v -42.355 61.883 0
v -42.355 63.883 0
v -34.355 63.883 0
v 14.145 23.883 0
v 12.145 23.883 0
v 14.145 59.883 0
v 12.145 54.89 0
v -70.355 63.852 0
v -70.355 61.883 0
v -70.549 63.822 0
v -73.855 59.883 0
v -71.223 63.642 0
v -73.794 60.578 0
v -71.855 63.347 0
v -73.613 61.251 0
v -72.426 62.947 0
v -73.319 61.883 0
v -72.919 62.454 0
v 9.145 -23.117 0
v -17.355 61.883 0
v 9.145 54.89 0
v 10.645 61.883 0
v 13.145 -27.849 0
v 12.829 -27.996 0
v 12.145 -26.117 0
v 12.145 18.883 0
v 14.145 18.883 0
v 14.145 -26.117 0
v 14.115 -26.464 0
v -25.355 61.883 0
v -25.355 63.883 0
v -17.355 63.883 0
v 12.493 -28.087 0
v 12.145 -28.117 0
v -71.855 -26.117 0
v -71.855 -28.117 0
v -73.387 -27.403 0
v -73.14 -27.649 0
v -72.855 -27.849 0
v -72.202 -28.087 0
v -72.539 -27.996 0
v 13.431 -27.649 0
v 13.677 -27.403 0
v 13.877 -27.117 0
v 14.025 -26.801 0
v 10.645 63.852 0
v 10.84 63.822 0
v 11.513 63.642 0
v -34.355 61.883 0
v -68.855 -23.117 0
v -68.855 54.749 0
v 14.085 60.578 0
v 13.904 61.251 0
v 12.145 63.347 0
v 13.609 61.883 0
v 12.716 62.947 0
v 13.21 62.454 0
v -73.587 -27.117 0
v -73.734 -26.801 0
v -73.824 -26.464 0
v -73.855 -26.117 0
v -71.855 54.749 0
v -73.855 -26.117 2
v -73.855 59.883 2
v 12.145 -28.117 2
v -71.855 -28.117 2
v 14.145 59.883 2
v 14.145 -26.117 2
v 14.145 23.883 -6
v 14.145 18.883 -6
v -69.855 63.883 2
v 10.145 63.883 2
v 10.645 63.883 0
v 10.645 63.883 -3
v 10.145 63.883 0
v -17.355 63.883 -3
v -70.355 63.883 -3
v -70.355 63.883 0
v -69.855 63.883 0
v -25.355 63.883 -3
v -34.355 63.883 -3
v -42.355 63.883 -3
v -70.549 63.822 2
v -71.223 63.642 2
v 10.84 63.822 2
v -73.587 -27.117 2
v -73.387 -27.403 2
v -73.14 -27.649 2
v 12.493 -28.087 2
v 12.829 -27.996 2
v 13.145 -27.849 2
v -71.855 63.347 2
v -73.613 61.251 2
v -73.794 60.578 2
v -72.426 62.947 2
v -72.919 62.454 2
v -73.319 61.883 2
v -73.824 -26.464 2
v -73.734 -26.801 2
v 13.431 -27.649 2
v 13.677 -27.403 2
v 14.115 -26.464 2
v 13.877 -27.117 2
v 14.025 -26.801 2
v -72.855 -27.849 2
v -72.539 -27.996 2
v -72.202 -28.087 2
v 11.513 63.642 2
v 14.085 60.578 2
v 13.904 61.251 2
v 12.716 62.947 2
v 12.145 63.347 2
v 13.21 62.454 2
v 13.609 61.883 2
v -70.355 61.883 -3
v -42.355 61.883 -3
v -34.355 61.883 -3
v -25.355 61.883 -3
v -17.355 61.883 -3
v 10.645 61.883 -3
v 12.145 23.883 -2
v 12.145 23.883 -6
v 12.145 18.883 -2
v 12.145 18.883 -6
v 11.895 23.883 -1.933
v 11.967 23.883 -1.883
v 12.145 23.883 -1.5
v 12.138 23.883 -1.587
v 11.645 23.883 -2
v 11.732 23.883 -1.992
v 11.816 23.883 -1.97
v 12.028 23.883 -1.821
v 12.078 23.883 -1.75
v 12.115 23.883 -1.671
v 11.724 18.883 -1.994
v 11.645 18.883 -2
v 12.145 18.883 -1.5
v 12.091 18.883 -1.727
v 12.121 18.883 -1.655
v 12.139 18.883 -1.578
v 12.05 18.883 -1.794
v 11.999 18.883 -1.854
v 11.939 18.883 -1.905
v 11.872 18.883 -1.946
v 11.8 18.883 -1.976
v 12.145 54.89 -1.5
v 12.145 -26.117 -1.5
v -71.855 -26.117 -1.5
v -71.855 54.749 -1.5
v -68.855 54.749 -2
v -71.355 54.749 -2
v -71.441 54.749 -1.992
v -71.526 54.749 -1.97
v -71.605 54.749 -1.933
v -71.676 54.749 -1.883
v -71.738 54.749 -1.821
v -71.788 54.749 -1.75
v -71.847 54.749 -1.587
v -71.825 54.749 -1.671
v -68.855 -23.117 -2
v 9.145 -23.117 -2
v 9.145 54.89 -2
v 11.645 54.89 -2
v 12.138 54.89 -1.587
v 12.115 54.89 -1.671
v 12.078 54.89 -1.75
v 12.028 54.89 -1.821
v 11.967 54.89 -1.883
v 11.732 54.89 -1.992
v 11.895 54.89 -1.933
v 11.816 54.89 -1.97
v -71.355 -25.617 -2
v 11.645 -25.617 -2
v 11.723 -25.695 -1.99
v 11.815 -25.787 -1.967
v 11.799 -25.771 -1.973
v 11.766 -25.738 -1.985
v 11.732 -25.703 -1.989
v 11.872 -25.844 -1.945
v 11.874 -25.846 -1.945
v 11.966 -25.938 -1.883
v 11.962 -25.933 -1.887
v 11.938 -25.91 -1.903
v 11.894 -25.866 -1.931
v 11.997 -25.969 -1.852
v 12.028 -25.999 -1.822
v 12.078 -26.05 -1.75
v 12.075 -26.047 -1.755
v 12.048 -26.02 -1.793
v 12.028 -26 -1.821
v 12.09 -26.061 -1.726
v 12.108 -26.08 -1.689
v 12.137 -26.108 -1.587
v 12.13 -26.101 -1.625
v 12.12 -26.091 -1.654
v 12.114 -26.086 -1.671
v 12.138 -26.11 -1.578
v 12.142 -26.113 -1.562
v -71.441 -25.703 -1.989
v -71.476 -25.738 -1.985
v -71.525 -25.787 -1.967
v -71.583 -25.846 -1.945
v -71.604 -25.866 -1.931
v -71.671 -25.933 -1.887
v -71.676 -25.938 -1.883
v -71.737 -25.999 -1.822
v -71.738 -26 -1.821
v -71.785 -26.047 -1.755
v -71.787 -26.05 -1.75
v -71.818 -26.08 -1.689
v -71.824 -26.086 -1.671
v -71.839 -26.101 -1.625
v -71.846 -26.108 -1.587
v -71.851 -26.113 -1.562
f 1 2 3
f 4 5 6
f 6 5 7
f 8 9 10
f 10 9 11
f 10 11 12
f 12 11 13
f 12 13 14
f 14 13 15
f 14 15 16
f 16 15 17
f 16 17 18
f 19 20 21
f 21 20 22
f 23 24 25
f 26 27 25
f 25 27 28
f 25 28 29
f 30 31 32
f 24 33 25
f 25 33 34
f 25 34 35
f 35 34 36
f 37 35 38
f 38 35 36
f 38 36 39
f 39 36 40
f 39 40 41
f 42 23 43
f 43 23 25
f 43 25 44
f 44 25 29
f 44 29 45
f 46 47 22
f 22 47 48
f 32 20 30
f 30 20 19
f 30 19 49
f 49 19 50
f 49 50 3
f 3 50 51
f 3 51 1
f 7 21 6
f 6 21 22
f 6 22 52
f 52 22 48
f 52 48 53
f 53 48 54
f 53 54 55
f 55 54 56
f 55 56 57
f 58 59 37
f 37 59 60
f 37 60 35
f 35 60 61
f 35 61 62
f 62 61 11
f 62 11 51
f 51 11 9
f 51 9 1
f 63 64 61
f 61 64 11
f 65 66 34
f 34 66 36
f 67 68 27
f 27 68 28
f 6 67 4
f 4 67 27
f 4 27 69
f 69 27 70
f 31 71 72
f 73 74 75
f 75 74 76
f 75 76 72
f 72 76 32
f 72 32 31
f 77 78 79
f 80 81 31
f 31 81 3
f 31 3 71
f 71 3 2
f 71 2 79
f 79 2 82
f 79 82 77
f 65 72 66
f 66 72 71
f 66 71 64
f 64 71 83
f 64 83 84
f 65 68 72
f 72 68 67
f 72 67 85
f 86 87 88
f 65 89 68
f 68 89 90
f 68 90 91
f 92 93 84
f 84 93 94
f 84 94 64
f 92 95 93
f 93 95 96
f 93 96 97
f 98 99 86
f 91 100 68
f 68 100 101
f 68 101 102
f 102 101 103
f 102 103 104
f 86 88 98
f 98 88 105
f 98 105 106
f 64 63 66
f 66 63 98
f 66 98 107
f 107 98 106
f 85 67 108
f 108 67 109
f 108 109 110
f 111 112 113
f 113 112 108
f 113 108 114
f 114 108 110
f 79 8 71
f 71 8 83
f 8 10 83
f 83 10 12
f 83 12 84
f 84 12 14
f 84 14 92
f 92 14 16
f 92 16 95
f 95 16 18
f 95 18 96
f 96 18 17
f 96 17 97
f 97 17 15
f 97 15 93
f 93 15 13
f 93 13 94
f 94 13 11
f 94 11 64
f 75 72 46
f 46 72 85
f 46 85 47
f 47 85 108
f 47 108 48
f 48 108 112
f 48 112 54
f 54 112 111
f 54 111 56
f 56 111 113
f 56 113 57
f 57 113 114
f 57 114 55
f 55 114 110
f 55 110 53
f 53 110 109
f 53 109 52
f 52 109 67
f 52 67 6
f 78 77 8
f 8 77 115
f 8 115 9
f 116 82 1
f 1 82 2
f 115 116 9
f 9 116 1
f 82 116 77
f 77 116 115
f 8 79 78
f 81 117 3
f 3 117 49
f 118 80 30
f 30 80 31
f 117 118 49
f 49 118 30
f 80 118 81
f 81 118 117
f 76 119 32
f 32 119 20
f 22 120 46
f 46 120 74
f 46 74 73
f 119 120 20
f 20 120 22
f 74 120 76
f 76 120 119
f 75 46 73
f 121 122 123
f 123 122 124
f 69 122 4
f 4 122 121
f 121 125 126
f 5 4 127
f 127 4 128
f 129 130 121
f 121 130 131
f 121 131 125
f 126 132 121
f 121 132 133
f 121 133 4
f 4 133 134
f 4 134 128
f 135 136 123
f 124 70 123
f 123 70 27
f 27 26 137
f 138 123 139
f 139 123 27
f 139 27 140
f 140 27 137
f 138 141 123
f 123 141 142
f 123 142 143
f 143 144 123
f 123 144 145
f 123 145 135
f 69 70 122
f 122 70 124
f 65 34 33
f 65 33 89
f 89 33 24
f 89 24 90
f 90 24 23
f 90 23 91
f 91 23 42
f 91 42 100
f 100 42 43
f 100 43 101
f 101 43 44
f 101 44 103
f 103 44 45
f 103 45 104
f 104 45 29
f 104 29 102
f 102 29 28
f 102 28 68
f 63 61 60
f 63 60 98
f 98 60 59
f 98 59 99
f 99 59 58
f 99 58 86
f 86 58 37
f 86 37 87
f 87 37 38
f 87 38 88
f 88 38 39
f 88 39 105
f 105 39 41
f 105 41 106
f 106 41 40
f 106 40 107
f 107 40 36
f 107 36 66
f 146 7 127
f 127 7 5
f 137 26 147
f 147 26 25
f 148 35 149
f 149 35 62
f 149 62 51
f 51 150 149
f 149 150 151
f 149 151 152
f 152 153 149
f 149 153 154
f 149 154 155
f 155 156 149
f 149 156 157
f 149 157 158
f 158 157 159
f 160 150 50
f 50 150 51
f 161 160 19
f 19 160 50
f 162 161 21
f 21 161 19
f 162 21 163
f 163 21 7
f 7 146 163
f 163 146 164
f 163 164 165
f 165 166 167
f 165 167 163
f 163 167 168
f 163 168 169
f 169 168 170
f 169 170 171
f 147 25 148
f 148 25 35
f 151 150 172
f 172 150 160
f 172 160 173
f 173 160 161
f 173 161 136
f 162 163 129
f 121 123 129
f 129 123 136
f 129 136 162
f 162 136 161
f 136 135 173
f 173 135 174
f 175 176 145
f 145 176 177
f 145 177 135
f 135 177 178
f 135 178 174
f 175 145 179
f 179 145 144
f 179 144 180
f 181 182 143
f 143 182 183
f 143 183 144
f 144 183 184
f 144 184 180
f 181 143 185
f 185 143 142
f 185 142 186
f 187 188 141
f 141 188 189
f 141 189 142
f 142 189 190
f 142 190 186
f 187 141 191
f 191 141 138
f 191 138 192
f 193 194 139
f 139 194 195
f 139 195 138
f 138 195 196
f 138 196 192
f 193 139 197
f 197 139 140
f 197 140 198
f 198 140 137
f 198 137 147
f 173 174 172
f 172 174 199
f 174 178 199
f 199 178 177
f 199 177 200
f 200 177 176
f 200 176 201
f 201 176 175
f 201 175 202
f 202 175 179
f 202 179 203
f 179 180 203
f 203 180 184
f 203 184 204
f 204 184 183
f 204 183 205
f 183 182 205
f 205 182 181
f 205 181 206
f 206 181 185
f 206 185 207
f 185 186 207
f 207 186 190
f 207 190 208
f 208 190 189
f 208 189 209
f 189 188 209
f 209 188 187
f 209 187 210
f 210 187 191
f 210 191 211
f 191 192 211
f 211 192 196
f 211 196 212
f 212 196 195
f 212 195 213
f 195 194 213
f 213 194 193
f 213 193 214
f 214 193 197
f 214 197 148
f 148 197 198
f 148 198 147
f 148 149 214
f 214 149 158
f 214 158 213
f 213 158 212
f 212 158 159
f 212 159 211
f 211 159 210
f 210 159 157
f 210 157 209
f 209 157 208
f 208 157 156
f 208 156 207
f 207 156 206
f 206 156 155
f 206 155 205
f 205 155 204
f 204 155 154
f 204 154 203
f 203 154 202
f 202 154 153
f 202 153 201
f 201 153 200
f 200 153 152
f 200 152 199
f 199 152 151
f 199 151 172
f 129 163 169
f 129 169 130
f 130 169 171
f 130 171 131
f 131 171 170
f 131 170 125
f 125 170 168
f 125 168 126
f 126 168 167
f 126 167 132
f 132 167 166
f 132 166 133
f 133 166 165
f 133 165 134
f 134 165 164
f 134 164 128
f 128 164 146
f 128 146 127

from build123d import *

# Parameters (mm, degrees)
SKETCH1_W           = 88
SKETCH1_H           = 92
BOSS_EXTRUDE1_DEPTH = 2
FILLET1_R           = 4
SKETCH3_W           = 28
SKETCH3_H           = 2
SKETCH3_W_2         = 9
BOSS_EXTRUDE3_DEPTH = 3
SKETCH4_W           = 2
SKETCH4_H           = 5
BOSS_EXTRUDE4_DEPTH = 6
FILLET2_R           = 2
BOSS_EXTRUDE5_DEPTH = 2
FILLET4_R           = 0.5


with BuildPart() as part:
    # Sketch1 → Boss-Extrude1 (new body)
    with BuildSketch(Plane.XY):
        with Locations((-29.854657196, 17.8829867)):
            Rectangle(SKETCH1_W, SKETCH1_H)
    extrude(amount=BOSS_EXTRUDE1_DEPTH)

    # Fillet1
    fillet1_edges = [part.edges().sort_by_distance(p)[0] for p in [
        (-73.854657196, 63.8829867, 1),
        (14.145342804, 63.8829867, 1),
    ]]
    fillet(fillet1_edges, radius=FILLET1_R)

    # Sketch3 → Boss-Extrude3 (add)
    with BuildSketch(Plane(origin=(0, 0, 0), x_dir=(-1, 0, 0), z_dir=(0, 0, -1))):
        with Locations((56.354657196, 62.8829867)):
            Rectangle(SKETCH3_W, SKETCH3_H)
        with Locations((29.854657196, 62.8829867)):
            Rectangle(SKETCH3_W_2, SKETCH3_H)
        with Locations((3.354657196, 62.8829867)):
            Rectangle(SKETCH3_W, SKETCH3_H)
    extrude(amount=BOSS_EXTRUDE3_DEPTH)

    # Sketch4 → Boss-Extrude4 (add)
    with BuildSketch(Plane(origin=(0, 0, 0), x_dir=(-1, 0, 0), z_dir=(0, 0, -1))):
        with Locations((-13.145342804, 21.3829867)):
            Rectangle(SKETCH4_W, SKETCH4_H)
    extrude(amount=BOSS_EXTRUDE4_DEPTH)

    # Fillet2
    fillet2_edges = [part.edges().sort_by_distance(p)[0] for p in [
        (14.145342804, -28.1170133, 1),
        (-73.854657196, -28.1170133, 1),
    ]]
    fillet(fillet2_edges, radius=FILLET2_R)

    # Sketch5 → Boss-Extrude5 (add)
    with BuildSketch(Plane(origin=(0, 0, 0), x_dir=(-1, 0, 0), z_dir=(0, 0, -1))):
        Polygon((71.854657196, -26.1170133), (68.854657196, -26.1170133), (-12.145342804, -26.1170133), (-12.145342804, -23.1170133), (-12.145342804, 54.889958553), (-9.145342804, 54.889958553), (-9.145342804, -23.1170133), (68.854657196, -23.1170133), (68.854657196, 54.749214955), (71.854657196, 54.749214955), align=None)
    extrude(amount=BOSS_EXTRUDE5_DEPTH)

    # Fillet4
    fillet4_edges = [part.edges().sort_by_distance(p)[0] for p in [
        (-71.854657196, 14.316100828, -2),
        (12.145342804, 39.386472626, -2),
        (12.145342804, -3.6170133, -2),
        (-29.854657196, -26.1170133, -2),
    ]]
    fillet(fillet4_edges, radius=FILLET4_R)


solid = part.part
